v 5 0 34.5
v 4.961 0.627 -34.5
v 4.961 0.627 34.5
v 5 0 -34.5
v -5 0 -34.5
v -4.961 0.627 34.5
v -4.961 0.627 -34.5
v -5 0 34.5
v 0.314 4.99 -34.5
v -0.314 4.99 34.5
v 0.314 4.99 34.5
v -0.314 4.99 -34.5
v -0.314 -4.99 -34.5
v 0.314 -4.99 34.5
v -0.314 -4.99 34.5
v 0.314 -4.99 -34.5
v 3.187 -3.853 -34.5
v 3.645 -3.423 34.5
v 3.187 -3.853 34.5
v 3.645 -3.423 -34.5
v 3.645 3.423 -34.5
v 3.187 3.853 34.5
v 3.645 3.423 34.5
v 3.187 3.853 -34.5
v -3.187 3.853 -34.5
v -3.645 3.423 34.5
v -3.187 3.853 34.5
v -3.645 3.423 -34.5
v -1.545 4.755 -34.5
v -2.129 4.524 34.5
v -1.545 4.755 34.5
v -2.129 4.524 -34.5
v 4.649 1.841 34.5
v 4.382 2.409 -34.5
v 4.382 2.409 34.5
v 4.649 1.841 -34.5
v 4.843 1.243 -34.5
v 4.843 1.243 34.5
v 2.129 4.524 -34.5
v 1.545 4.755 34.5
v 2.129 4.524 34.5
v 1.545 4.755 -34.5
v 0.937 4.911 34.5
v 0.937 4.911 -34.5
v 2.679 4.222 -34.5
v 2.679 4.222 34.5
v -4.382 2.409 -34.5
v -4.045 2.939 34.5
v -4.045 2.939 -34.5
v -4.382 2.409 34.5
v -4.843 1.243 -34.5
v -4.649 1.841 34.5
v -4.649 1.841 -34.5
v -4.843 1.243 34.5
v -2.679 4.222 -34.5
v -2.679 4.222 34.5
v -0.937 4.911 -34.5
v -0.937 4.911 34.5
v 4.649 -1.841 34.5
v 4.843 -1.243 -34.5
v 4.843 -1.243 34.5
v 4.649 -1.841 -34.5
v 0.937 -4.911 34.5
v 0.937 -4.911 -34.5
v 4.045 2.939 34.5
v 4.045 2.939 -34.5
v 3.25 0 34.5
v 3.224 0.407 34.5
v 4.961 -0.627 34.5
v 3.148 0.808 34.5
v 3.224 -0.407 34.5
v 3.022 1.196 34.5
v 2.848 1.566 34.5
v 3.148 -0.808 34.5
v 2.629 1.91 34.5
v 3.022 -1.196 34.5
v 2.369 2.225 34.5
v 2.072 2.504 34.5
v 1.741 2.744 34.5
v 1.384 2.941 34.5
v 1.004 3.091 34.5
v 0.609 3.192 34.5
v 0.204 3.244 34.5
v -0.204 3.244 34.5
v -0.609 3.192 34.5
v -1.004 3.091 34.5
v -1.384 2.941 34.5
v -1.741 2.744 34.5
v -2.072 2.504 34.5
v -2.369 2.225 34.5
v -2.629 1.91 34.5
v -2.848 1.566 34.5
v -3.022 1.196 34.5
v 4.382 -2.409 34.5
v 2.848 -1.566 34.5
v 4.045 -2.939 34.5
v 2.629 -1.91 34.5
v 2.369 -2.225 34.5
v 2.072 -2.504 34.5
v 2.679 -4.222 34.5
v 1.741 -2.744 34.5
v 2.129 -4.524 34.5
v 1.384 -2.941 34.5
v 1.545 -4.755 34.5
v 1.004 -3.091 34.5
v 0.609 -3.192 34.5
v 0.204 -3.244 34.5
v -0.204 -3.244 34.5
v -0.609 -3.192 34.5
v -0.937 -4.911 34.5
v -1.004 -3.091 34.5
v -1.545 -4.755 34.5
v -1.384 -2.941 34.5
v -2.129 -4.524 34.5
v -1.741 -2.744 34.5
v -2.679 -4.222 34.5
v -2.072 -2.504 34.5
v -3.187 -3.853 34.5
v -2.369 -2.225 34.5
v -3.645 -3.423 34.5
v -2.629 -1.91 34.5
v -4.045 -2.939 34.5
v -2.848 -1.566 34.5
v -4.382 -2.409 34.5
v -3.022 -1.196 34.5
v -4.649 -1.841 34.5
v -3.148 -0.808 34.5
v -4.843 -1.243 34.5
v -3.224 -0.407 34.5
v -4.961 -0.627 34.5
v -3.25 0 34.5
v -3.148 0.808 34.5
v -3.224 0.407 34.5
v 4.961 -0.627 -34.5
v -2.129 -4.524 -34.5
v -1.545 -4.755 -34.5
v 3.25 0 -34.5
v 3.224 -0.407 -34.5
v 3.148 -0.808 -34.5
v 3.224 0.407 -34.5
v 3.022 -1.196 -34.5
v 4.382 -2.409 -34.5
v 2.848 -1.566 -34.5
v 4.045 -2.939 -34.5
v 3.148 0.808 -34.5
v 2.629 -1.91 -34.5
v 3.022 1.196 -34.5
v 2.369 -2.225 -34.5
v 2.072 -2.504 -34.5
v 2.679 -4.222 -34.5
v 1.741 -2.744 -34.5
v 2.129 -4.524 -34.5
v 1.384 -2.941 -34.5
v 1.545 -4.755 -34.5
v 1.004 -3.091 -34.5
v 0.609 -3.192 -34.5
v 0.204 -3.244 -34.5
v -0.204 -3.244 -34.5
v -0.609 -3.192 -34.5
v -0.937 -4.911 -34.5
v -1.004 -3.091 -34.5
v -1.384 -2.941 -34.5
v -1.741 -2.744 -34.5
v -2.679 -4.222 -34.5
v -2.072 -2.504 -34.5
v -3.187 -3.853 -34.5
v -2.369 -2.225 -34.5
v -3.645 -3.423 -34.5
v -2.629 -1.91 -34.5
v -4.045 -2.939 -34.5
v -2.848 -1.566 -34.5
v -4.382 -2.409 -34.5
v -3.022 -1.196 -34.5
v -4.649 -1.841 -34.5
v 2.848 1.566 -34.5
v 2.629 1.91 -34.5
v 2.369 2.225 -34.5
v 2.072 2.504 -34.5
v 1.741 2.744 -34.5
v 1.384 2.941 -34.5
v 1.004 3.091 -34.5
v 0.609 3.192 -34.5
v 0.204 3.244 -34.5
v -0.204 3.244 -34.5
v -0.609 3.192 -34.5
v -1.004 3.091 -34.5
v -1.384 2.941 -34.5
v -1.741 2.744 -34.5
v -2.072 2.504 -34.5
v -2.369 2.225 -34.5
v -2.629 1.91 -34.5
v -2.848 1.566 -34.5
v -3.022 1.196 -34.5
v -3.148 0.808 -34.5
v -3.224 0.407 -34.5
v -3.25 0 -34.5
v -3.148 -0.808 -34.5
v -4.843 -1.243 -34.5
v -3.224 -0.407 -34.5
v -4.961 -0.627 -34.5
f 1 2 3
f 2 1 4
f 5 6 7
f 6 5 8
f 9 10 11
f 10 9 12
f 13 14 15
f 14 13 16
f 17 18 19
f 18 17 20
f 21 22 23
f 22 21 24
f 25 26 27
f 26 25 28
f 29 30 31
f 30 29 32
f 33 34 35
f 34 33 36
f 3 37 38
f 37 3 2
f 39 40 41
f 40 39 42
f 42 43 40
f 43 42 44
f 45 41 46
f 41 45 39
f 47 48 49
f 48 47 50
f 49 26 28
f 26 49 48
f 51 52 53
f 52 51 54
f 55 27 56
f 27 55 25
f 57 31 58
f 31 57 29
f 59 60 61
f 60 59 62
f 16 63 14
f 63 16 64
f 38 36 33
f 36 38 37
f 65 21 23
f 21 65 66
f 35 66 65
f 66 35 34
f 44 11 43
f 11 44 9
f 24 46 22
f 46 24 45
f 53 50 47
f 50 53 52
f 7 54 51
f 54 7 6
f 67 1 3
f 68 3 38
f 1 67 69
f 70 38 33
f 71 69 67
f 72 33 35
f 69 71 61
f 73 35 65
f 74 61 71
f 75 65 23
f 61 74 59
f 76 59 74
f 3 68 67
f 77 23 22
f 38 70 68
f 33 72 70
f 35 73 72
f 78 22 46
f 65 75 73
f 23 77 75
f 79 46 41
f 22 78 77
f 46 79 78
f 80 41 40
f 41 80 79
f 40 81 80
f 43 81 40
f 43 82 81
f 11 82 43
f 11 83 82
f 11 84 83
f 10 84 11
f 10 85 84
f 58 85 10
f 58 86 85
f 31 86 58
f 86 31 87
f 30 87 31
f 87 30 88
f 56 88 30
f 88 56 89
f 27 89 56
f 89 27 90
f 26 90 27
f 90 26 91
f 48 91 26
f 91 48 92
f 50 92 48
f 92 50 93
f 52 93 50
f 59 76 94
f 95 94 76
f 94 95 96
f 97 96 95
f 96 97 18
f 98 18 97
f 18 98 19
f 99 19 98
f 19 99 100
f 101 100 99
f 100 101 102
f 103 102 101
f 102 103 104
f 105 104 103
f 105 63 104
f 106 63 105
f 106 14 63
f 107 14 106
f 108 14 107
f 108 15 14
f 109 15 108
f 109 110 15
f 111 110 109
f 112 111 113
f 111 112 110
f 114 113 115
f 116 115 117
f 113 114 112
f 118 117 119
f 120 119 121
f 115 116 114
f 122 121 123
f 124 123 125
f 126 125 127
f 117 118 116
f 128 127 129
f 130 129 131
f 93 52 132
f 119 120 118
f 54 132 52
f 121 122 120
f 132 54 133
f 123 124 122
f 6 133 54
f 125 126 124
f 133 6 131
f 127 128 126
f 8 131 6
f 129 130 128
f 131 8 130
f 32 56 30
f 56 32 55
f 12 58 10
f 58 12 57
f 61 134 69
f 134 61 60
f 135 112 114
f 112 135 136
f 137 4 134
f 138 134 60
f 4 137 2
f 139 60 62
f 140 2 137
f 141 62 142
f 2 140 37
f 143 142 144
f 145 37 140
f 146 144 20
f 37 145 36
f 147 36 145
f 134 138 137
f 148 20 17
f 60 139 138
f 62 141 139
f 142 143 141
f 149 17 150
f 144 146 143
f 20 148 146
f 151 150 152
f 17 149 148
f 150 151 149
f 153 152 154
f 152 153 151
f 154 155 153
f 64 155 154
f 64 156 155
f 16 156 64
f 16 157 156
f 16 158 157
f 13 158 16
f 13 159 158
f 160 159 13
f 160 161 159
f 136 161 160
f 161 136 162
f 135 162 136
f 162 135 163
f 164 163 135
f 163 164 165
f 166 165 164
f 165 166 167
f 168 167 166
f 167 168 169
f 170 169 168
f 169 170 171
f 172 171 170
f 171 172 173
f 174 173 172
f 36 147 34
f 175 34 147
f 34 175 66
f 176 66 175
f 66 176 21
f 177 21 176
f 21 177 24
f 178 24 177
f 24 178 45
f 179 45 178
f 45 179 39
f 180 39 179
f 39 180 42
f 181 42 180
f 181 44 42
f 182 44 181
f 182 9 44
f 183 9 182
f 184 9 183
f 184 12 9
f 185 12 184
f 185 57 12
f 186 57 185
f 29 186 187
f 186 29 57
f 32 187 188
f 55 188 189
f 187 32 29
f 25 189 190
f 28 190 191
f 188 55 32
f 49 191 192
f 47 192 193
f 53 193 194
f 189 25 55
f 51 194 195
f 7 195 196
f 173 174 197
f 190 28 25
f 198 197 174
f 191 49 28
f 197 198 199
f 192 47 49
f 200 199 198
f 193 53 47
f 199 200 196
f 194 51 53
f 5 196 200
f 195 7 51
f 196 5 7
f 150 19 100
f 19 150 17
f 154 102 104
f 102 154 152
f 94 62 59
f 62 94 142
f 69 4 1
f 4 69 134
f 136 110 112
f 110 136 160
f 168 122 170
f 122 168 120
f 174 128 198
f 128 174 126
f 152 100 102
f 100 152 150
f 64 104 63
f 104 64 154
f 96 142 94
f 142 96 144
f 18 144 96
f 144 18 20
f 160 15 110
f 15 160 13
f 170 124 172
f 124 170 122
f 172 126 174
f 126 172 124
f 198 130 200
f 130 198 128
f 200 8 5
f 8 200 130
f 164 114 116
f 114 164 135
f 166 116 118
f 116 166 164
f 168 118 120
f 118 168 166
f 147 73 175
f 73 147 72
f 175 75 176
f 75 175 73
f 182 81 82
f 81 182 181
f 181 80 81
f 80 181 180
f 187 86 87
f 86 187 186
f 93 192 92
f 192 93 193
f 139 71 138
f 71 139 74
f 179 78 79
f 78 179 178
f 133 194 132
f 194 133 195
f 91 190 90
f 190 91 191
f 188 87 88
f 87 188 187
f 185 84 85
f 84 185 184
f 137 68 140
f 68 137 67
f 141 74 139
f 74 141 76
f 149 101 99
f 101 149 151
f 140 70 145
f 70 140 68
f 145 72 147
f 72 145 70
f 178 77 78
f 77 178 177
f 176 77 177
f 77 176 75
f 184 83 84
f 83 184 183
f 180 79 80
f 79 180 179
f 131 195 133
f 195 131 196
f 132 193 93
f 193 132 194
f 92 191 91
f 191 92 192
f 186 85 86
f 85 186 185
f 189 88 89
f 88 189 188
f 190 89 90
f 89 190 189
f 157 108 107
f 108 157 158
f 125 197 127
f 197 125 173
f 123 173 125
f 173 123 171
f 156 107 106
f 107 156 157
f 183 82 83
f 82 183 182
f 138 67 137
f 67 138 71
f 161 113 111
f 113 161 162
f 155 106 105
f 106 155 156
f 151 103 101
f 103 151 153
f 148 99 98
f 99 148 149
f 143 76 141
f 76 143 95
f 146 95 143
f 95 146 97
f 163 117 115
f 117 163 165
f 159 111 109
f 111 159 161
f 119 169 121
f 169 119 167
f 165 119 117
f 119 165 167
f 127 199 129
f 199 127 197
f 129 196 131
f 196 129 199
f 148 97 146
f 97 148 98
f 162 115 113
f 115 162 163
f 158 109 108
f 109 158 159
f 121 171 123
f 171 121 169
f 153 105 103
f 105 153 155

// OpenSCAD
$fn = 50;


difference() {
	union() {
		translate(v = [0, 0, -34.5000000000]) {
			cylinder(h = 69, r = 5.0000000000);
		}
	}
	union() {
		translate(v = [0, 0, -100.0000000000]) {
			cylinder(h = 200, r = 3.2500000000);
		}
	}
}
